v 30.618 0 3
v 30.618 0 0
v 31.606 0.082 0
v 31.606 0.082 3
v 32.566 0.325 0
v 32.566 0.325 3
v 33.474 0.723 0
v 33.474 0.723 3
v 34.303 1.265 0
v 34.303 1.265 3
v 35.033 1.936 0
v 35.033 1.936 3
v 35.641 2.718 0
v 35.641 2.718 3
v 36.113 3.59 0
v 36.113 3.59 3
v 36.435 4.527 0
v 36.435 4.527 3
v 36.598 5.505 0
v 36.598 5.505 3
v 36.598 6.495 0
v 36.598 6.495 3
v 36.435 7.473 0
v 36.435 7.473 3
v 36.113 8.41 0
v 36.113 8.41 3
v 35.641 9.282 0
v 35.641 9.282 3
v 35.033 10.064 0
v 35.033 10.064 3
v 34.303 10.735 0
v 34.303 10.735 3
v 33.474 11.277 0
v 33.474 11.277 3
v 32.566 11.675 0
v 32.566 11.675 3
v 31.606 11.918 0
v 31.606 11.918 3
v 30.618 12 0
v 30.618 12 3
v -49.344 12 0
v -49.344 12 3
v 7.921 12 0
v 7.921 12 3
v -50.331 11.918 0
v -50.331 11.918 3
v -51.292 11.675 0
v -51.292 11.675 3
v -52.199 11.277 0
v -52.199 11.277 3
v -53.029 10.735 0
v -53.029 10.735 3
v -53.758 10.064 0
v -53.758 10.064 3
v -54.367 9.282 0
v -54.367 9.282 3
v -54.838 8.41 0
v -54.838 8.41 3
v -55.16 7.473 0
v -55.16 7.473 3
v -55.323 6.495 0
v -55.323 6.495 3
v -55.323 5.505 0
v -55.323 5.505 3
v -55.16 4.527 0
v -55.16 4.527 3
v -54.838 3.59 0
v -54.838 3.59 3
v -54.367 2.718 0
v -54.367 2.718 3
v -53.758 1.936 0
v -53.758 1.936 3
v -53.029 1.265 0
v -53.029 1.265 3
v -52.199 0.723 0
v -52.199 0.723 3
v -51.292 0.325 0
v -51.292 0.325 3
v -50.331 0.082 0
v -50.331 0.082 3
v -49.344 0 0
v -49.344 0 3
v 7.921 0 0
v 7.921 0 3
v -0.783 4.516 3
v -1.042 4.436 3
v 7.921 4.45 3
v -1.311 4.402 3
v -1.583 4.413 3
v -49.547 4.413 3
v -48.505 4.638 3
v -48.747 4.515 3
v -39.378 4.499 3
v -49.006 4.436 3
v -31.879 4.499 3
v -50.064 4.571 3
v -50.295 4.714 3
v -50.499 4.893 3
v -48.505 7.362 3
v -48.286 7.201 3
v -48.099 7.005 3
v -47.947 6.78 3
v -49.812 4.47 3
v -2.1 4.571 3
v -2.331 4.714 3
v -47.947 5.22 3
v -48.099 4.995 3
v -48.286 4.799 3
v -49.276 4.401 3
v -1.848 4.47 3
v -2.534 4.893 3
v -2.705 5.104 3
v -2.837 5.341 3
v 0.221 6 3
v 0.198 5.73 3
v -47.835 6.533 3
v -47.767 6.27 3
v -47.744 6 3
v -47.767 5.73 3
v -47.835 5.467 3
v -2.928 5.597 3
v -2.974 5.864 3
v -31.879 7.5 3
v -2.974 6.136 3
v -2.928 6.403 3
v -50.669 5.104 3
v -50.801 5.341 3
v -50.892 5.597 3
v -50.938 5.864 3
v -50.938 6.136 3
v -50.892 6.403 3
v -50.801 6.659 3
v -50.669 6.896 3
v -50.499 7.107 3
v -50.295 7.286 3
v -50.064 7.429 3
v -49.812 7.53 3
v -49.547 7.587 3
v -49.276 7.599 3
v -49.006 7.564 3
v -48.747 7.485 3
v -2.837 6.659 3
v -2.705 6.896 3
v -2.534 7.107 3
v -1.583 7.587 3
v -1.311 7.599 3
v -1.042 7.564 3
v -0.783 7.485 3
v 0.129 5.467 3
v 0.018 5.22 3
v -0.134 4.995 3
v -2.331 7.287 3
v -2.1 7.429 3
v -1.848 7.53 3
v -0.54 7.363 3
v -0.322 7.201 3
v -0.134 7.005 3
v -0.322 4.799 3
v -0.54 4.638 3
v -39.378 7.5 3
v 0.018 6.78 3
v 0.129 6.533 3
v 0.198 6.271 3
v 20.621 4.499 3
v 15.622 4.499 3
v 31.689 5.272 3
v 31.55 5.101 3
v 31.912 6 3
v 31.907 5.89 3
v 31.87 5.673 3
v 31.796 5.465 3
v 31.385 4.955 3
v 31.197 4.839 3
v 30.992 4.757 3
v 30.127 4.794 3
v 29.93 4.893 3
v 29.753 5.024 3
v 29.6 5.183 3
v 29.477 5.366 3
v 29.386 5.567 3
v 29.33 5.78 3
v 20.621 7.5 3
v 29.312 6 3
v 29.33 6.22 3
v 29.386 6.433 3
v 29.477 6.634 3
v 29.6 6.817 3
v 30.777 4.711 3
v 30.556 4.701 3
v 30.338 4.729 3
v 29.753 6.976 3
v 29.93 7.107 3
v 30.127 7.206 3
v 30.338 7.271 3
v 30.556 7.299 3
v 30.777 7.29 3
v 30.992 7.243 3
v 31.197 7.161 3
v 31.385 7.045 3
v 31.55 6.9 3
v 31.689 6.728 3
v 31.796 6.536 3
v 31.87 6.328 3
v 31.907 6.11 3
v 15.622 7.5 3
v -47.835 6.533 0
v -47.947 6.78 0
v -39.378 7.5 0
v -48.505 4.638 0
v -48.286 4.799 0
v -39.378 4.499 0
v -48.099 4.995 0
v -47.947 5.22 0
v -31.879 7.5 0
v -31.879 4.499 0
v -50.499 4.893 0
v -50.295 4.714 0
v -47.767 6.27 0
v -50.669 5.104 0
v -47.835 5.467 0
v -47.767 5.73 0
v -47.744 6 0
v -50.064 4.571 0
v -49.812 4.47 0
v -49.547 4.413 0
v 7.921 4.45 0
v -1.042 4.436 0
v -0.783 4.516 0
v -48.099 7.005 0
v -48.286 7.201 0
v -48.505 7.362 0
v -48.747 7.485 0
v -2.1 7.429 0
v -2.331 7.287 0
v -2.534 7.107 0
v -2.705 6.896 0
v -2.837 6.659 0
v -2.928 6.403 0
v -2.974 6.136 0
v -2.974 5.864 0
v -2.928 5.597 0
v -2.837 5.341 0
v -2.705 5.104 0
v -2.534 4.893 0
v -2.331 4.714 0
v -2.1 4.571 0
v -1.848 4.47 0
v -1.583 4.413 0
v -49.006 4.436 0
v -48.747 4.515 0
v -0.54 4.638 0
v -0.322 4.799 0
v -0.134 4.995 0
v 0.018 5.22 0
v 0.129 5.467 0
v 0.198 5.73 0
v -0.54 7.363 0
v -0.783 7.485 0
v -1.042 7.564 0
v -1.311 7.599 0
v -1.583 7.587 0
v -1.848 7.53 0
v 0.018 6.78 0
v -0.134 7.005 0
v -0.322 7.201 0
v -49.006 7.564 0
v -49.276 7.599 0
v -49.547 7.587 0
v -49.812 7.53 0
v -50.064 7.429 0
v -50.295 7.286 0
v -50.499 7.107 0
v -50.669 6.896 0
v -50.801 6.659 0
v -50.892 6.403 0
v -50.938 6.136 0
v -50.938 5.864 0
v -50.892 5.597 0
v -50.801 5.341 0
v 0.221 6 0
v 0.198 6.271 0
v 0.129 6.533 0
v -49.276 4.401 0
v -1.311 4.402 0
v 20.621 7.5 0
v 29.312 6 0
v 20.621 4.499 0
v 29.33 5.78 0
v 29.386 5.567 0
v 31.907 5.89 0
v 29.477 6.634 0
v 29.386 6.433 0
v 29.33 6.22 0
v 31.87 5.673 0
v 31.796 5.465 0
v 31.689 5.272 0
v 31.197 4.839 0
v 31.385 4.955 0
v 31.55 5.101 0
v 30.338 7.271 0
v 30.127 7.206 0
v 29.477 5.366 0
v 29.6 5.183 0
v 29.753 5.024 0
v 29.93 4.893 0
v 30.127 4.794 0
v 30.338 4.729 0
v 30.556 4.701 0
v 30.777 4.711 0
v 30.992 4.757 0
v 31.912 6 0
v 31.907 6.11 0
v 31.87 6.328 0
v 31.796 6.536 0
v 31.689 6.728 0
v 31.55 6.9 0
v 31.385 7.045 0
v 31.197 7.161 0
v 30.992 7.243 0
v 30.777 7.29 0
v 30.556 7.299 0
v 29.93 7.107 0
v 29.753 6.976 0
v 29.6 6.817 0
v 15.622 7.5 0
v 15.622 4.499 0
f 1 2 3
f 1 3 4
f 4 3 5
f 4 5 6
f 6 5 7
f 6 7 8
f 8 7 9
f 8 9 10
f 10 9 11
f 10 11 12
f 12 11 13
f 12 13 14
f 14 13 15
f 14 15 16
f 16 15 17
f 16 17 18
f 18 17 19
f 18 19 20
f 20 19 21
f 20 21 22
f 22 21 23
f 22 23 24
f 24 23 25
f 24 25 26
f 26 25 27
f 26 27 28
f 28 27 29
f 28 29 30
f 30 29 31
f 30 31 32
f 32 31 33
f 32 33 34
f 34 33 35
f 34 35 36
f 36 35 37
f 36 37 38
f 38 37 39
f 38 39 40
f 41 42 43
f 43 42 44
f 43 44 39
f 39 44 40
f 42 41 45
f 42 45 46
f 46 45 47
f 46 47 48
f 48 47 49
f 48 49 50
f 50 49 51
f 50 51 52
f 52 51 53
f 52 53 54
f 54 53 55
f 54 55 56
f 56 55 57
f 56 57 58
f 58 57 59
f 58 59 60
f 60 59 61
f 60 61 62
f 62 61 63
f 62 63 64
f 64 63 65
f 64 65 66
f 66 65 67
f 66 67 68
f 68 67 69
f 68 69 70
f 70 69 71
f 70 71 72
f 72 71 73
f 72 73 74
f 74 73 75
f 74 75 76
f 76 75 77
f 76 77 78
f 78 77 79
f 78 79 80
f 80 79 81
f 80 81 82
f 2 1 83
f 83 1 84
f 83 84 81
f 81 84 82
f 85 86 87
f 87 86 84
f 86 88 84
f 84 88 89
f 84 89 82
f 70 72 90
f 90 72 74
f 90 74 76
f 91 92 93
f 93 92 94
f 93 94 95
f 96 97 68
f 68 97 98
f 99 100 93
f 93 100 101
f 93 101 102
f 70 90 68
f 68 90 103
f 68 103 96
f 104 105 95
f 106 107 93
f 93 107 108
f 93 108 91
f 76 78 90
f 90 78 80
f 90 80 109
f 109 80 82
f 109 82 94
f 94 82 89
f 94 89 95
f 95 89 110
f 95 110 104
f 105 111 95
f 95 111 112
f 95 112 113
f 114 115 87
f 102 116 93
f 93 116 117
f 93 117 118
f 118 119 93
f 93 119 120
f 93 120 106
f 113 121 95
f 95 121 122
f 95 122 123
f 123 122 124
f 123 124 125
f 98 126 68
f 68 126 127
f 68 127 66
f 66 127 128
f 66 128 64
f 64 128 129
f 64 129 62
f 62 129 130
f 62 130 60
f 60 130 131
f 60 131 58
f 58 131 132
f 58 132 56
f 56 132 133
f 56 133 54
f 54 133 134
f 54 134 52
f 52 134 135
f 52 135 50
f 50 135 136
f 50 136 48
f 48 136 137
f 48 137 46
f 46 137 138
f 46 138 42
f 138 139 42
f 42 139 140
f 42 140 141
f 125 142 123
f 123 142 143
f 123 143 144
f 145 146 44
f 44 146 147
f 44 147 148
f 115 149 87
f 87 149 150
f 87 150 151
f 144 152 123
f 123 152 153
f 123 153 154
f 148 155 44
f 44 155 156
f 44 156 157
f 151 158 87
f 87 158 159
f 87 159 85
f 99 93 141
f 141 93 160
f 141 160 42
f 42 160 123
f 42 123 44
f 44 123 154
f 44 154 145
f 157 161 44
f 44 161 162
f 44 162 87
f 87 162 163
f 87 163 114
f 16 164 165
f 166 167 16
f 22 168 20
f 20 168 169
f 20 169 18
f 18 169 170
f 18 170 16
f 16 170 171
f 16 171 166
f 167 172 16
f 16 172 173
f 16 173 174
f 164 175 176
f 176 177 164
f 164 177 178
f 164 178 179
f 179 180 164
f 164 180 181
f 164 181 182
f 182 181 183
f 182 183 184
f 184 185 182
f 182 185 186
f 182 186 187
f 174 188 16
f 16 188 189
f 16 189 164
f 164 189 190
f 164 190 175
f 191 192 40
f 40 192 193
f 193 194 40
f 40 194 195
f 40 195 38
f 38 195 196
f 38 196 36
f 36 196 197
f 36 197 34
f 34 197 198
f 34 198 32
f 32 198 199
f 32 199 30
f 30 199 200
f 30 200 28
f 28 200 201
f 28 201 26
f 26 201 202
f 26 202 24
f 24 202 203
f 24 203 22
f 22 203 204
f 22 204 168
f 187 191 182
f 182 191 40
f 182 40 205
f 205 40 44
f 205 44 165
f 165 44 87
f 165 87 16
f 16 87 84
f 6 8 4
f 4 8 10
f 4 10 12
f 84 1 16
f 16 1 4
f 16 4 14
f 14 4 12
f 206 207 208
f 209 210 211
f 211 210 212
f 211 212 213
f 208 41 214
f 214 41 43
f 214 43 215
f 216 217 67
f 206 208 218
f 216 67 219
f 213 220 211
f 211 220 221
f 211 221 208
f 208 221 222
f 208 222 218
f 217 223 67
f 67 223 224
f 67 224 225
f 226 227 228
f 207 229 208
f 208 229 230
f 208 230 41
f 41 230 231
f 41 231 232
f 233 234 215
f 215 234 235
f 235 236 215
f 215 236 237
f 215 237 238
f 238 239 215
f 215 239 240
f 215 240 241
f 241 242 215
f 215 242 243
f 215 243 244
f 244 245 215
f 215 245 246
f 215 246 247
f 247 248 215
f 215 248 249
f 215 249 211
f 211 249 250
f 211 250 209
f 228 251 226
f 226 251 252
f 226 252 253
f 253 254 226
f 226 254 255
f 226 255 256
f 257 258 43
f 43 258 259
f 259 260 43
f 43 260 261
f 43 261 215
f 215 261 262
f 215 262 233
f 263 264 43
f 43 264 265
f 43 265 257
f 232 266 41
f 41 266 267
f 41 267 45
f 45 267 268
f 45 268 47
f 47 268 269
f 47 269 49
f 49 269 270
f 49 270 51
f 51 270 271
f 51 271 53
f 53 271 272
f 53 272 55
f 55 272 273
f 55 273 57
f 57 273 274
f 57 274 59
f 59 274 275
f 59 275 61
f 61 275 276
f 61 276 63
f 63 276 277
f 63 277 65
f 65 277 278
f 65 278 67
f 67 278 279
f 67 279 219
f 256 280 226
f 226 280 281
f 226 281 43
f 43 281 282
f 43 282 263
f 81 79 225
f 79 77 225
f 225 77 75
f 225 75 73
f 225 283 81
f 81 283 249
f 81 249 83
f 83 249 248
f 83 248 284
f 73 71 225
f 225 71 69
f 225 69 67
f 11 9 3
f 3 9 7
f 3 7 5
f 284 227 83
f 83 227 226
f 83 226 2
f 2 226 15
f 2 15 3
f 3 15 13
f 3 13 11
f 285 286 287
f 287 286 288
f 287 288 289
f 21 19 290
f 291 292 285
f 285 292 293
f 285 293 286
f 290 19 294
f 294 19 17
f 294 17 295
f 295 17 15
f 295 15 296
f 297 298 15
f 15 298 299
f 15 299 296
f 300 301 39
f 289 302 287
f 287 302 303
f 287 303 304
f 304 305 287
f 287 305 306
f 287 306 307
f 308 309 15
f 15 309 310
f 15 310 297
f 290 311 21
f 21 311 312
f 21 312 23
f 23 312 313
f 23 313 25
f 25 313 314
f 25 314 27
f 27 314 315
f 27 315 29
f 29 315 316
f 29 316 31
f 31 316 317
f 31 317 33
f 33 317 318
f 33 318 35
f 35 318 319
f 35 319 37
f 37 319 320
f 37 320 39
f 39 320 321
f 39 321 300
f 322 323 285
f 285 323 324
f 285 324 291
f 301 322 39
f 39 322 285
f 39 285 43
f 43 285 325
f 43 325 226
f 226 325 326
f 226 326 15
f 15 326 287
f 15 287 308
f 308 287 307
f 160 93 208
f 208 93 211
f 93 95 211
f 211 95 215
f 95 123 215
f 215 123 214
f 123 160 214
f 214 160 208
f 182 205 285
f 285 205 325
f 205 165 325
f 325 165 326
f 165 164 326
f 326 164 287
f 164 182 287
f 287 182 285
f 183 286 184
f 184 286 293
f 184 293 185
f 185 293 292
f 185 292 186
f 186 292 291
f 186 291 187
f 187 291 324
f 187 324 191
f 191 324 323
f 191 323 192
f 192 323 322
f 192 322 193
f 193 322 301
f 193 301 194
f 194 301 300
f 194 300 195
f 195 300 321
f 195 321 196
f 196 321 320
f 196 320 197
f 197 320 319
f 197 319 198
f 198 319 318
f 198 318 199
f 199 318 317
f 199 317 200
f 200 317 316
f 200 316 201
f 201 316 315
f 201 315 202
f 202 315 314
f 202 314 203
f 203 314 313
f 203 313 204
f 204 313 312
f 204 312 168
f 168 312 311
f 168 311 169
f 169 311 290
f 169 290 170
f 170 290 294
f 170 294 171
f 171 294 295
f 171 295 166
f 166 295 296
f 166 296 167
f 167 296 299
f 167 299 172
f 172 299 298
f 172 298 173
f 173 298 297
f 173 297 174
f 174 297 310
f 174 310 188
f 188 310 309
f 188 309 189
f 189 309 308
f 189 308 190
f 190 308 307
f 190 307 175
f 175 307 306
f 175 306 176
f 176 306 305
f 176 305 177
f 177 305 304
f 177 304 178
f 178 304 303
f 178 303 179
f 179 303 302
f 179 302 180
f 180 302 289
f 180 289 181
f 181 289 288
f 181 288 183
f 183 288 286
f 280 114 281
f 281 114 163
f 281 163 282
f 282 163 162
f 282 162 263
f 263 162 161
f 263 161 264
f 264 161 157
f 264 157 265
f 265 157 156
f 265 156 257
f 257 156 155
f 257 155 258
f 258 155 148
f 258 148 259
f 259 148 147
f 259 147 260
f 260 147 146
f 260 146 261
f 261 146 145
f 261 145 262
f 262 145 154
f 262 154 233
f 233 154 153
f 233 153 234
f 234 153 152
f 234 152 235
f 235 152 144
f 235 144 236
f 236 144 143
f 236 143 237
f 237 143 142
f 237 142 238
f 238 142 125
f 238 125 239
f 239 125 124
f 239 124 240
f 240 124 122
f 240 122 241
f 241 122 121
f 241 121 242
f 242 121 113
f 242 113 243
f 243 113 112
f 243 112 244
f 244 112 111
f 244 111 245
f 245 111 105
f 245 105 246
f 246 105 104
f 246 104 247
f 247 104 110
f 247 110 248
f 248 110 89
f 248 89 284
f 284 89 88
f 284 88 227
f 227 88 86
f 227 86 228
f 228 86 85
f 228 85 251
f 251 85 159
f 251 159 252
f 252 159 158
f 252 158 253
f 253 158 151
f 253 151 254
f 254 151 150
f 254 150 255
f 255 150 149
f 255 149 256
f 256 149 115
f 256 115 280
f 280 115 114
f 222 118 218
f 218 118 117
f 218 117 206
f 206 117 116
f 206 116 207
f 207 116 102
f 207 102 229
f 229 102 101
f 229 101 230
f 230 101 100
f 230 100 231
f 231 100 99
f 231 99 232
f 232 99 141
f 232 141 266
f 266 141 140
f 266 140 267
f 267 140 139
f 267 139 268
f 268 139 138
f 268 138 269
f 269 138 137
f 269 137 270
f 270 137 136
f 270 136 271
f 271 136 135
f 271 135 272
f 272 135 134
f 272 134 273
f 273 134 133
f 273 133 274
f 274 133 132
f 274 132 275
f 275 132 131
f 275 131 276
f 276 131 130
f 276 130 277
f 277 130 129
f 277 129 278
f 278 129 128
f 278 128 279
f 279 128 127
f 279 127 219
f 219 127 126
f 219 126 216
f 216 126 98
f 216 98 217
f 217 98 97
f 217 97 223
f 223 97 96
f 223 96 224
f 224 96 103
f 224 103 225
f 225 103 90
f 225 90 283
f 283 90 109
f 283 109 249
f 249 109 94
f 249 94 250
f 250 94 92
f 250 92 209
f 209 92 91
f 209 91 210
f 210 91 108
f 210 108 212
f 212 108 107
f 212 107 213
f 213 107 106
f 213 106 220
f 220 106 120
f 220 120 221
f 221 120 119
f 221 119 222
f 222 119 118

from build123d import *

# Parameters (mm, degrees)
SKETCH_1_R          = 1.3
SKETCH_1_W          = 7.4992
SKETCH_1_H          = 3.0001
SKETCH_1_W_2        = 4.9995
EXTRUDE_1_DEPTH     = 3
SKETCH_2_R          = 1.6
CUT_EXTRUDE_1_DEPTH = 57.708942736


with BuildPart() as part:
    # 草图1 → 凸台-拉伸1 (new body)
    with BuildSketch(Plane(origin=(0, 0, 0), x_dir=(-1, 0, 0), z_dir=(0, 0, -1))):
        with BuildLine():
            Line((-30.618171933, 0), (49.343510787, 0))
            ThreePointArc((49.343510787, 0), (55.343510787, 6), (49.343510787, 12))
            Line((49.343510787, 12), (-30.618171933, 12))
            ThreePointArc((-30.618171933, 12), (-36.618171933, 6), (-30.618171933, 0))
        make_face()
        with Locations(Location((49.343510787, 6, 0), (0, 0, 180))):
            Circle(SKETCH_1_R, mode=Mode.SUBTRACT)
        with Locations(Location((1.379286828, 6.00015, 0), (0, 0, 180))):
            Circle(SKETCH_1_R, mode=Mode.SUBTRACT)
        with Locations(Location((-30.611606698, 6.0001, 0), (0, 0, 180))):
            Circle(SKETCH_1_R, mode=Mode.SUBTRACT)
        with Locations((35.628693302, 5.99945)):
            Rectangle(SKETCH_1_W, SKETCH_1_H, mode=Mode.SUBTRACT)
        with Locations((-18.121556698, 5.99945)):
            Rectangle(SKETCH_1_W_2, SKETCH_1_H, mode=Mode.SUBTRACT)
    extrude(amount=-EXTRUDE_1_DEPTH)

    # 草图2 → 切除-拉伸1 (cut, through all)
    with BuildSketch(Plane.XY.offset(3)):
        with Locations((-49.343510787, 6)):
            Circle(SKETCH_2_R)
        with Locations((-1.379286828, 6.00015)):
            Circle(SKETCH_2_R)
    extrude(amount=-CUT_EXTRUDE_1_DEPTH, mode=Mode.SUBTRACT)


solid = part.part
